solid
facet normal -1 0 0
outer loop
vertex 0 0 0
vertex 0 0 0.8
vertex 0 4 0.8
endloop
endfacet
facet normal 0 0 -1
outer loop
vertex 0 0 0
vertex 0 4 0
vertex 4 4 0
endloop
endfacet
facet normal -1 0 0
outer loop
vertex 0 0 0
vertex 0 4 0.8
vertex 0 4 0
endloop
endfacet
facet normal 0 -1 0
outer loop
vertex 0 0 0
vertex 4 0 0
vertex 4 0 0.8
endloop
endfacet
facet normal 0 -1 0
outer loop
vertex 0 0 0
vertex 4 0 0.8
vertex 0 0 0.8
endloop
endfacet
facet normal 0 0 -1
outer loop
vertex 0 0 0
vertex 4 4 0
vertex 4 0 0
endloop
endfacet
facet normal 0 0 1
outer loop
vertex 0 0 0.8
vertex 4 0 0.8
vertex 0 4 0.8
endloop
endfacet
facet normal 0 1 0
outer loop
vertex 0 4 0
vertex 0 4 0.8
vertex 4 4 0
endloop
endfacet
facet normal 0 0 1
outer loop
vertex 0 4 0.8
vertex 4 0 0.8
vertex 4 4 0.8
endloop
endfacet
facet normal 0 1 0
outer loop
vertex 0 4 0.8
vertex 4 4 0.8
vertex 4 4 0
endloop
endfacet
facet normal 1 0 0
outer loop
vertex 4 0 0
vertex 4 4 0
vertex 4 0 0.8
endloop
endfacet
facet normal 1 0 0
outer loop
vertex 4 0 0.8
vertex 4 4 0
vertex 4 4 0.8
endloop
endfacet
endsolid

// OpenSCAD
/* Warning, this is a very basic generator with a lot of approximation 
input data : [QFN, RUX, 4x4x0.8mm, 24, , A, C04-00225A]
generated by com.zoubworld.electronics.cad.model3d.Basic
Date : Sun Feb 15 10:50:48 CET 2026
*/

//body
color("black")
translate([0,0,0])
cube([4.0,4.0,0.8], center=false);
